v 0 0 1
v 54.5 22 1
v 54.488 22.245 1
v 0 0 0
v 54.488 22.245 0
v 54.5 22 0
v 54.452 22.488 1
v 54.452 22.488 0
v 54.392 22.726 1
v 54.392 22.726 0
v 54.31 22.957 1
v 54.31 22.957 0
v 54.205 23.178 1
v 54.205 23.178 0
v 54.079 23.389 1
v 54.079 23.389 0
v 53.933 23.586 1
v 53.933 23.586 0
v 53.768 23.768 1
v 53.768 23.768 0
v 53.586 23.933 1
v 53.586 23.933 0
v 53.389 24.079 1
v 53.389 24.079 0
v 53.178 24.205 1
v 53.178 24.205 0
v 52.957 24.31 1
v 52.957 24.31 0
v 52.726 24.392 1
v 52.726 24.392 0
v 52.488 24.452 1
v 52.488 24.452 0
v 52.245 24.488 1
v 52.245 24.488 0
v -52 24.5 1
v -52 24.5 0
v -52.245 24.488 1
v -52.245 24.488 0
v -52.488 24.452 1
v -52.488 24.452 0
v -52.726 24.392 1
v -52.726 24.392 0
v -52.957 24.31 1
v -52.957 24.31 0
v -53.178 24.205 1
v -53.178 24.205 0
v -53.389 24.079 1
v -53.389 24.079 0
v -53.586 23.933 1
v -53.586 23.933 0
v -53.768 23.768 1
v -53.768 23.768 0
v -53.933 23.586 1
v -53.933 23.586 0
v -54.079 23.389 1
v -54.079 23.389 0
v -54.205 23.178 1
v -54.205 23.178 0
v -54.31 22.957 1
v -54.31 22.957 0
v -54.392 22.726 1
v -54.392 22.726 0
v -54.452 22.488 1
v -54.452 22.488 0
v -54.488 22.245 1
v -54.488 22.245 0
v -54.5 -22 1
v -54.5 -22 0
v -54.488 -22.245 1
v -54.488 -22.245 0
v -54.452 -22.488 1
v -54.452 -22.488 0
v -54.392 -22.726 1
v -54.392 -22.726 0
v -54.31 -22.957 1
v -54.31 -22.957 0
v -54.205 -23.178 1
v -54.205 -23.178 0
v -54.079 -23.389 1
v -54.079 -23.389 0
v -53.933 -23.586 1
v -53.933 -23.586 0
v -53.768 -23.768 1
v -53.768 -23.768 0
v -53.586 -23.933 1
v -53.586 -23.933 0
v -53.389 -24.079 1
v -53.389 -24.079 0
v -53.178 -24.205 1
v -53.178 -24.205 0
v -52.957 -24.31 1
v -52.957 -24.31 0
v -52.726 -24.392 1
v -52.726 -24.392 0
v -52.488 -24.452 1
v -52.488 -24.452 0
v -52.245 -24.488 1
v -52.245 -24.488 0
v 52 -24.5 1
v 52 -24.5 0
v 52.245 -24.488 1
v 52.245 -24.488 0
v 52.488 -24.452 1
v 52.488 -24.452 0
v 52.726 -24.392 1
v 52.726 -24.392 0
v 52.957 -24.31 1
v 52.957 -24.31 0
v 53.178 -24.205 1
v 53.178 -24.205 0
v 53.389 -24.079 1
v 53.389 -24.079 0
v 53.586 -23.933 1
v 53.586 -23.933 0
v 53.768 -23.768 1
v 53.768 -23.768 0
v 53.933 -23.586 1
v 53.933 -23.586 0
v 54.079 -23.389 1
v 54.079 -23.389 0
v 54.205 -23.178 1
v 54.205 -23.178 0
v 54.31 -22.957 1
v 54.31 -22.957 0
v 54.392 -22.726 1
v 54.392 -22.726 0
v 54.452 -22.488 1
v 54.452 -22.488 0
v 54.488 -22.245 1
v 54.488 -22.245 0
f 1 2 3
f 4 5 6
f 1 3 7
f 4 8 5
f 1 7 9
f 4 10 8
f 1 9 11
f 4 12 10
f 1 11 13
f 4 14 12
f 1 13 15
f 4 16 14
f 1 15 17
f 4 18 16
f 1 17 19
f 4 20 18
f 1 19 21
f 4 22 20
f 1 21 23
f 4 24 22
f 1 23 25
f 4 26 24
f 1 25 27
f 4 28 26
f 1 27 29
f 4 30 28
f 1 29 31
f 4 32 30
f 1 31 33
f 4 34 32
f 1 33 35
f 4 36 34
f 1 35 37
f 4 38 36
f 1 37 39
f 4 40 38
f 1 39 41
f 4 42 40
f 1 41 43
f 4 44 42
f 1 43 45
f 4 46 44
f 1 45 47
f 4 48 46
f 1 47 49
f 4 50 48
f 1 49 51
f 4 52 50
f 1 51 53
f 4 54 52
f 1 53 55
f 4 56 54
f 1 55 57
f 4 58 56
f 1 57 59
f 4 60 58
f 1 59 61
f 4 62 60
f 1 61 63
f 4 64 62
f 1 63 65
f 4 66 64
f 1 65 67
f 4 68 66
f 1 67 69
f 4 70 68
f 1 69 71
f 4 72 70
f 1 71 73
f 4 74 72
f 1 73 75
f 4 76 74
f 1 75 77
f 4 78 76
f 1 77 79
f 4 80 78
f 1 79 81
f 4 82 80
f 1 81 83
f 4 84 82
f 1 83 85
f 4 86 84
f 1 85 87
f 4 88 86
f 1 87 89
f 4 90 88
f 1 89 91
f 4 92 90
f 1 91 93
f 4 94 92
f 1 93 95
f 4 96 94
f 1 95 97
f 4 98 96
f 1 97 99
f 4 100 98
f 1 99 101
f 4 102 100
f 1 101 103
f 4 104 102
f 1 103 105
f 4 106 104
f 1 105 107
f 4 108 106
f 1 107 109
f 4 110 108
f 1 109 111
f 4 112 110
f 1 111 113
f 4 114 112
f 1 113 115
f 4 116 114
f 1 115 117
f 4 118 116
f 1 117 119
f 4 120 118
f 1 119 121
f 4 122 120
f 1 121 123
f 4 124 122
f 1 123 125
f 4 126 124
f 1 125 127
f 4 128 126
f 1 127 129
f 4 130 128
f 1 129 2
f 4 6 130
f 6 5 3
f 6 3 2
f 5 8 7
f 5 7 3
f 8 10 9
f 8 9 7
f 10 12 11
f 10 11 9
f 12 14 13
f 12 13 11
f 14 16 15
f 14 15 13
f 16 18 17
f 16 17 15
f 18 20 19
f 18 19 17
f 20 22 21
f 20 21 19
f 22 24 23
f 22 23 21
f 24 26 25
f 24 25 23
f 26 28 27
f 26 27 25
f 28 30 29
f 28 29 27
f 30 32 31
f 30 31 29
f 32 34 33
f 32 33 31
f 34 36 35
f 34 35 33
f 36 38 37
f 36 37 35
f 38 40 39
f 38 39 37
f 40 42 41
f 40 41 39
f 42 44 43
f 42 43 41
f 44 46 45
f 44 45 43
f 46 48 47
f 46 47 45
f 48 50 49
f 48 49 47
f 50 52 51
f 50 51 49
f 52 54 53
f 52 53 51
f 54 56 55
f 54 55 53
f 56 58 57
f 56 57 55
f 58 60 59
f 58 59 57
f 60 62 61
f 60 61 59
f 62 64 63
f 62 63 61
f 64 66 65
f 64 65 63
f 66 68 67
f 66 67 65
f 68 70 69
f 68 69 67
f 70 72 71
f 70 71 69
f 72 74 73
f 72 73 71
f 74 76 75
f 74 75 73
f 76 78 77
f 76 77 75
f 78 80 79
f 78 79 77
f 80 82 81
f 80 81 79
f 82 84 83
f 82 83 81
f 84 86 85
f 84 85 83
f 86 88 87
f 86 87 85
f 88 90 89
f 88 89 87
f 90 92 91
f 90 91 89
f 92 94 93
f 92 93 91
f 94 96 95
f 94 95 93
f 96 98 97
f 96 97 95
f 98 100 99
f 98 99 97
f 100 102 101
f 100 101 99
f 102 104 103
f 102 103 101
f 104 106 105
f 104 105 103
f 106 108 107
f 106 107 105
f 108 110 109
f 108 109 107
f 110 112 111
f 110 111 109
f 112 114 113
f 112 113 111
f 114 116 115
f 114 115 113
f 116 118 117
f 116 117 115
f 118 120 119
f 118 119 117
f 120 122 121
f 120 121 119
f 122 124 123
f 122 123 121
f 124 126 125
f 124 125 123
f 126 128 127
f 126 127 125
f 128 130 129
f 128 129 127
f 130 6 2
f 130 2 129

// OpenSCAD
length = 109;
width  = 49;
height = 1;
radius = 2.5;
$fn    = 64;

linear_extrude(height = height)
    offset(r = radius)
        offset(delta = -radius)
            square([length, width], center = true);
